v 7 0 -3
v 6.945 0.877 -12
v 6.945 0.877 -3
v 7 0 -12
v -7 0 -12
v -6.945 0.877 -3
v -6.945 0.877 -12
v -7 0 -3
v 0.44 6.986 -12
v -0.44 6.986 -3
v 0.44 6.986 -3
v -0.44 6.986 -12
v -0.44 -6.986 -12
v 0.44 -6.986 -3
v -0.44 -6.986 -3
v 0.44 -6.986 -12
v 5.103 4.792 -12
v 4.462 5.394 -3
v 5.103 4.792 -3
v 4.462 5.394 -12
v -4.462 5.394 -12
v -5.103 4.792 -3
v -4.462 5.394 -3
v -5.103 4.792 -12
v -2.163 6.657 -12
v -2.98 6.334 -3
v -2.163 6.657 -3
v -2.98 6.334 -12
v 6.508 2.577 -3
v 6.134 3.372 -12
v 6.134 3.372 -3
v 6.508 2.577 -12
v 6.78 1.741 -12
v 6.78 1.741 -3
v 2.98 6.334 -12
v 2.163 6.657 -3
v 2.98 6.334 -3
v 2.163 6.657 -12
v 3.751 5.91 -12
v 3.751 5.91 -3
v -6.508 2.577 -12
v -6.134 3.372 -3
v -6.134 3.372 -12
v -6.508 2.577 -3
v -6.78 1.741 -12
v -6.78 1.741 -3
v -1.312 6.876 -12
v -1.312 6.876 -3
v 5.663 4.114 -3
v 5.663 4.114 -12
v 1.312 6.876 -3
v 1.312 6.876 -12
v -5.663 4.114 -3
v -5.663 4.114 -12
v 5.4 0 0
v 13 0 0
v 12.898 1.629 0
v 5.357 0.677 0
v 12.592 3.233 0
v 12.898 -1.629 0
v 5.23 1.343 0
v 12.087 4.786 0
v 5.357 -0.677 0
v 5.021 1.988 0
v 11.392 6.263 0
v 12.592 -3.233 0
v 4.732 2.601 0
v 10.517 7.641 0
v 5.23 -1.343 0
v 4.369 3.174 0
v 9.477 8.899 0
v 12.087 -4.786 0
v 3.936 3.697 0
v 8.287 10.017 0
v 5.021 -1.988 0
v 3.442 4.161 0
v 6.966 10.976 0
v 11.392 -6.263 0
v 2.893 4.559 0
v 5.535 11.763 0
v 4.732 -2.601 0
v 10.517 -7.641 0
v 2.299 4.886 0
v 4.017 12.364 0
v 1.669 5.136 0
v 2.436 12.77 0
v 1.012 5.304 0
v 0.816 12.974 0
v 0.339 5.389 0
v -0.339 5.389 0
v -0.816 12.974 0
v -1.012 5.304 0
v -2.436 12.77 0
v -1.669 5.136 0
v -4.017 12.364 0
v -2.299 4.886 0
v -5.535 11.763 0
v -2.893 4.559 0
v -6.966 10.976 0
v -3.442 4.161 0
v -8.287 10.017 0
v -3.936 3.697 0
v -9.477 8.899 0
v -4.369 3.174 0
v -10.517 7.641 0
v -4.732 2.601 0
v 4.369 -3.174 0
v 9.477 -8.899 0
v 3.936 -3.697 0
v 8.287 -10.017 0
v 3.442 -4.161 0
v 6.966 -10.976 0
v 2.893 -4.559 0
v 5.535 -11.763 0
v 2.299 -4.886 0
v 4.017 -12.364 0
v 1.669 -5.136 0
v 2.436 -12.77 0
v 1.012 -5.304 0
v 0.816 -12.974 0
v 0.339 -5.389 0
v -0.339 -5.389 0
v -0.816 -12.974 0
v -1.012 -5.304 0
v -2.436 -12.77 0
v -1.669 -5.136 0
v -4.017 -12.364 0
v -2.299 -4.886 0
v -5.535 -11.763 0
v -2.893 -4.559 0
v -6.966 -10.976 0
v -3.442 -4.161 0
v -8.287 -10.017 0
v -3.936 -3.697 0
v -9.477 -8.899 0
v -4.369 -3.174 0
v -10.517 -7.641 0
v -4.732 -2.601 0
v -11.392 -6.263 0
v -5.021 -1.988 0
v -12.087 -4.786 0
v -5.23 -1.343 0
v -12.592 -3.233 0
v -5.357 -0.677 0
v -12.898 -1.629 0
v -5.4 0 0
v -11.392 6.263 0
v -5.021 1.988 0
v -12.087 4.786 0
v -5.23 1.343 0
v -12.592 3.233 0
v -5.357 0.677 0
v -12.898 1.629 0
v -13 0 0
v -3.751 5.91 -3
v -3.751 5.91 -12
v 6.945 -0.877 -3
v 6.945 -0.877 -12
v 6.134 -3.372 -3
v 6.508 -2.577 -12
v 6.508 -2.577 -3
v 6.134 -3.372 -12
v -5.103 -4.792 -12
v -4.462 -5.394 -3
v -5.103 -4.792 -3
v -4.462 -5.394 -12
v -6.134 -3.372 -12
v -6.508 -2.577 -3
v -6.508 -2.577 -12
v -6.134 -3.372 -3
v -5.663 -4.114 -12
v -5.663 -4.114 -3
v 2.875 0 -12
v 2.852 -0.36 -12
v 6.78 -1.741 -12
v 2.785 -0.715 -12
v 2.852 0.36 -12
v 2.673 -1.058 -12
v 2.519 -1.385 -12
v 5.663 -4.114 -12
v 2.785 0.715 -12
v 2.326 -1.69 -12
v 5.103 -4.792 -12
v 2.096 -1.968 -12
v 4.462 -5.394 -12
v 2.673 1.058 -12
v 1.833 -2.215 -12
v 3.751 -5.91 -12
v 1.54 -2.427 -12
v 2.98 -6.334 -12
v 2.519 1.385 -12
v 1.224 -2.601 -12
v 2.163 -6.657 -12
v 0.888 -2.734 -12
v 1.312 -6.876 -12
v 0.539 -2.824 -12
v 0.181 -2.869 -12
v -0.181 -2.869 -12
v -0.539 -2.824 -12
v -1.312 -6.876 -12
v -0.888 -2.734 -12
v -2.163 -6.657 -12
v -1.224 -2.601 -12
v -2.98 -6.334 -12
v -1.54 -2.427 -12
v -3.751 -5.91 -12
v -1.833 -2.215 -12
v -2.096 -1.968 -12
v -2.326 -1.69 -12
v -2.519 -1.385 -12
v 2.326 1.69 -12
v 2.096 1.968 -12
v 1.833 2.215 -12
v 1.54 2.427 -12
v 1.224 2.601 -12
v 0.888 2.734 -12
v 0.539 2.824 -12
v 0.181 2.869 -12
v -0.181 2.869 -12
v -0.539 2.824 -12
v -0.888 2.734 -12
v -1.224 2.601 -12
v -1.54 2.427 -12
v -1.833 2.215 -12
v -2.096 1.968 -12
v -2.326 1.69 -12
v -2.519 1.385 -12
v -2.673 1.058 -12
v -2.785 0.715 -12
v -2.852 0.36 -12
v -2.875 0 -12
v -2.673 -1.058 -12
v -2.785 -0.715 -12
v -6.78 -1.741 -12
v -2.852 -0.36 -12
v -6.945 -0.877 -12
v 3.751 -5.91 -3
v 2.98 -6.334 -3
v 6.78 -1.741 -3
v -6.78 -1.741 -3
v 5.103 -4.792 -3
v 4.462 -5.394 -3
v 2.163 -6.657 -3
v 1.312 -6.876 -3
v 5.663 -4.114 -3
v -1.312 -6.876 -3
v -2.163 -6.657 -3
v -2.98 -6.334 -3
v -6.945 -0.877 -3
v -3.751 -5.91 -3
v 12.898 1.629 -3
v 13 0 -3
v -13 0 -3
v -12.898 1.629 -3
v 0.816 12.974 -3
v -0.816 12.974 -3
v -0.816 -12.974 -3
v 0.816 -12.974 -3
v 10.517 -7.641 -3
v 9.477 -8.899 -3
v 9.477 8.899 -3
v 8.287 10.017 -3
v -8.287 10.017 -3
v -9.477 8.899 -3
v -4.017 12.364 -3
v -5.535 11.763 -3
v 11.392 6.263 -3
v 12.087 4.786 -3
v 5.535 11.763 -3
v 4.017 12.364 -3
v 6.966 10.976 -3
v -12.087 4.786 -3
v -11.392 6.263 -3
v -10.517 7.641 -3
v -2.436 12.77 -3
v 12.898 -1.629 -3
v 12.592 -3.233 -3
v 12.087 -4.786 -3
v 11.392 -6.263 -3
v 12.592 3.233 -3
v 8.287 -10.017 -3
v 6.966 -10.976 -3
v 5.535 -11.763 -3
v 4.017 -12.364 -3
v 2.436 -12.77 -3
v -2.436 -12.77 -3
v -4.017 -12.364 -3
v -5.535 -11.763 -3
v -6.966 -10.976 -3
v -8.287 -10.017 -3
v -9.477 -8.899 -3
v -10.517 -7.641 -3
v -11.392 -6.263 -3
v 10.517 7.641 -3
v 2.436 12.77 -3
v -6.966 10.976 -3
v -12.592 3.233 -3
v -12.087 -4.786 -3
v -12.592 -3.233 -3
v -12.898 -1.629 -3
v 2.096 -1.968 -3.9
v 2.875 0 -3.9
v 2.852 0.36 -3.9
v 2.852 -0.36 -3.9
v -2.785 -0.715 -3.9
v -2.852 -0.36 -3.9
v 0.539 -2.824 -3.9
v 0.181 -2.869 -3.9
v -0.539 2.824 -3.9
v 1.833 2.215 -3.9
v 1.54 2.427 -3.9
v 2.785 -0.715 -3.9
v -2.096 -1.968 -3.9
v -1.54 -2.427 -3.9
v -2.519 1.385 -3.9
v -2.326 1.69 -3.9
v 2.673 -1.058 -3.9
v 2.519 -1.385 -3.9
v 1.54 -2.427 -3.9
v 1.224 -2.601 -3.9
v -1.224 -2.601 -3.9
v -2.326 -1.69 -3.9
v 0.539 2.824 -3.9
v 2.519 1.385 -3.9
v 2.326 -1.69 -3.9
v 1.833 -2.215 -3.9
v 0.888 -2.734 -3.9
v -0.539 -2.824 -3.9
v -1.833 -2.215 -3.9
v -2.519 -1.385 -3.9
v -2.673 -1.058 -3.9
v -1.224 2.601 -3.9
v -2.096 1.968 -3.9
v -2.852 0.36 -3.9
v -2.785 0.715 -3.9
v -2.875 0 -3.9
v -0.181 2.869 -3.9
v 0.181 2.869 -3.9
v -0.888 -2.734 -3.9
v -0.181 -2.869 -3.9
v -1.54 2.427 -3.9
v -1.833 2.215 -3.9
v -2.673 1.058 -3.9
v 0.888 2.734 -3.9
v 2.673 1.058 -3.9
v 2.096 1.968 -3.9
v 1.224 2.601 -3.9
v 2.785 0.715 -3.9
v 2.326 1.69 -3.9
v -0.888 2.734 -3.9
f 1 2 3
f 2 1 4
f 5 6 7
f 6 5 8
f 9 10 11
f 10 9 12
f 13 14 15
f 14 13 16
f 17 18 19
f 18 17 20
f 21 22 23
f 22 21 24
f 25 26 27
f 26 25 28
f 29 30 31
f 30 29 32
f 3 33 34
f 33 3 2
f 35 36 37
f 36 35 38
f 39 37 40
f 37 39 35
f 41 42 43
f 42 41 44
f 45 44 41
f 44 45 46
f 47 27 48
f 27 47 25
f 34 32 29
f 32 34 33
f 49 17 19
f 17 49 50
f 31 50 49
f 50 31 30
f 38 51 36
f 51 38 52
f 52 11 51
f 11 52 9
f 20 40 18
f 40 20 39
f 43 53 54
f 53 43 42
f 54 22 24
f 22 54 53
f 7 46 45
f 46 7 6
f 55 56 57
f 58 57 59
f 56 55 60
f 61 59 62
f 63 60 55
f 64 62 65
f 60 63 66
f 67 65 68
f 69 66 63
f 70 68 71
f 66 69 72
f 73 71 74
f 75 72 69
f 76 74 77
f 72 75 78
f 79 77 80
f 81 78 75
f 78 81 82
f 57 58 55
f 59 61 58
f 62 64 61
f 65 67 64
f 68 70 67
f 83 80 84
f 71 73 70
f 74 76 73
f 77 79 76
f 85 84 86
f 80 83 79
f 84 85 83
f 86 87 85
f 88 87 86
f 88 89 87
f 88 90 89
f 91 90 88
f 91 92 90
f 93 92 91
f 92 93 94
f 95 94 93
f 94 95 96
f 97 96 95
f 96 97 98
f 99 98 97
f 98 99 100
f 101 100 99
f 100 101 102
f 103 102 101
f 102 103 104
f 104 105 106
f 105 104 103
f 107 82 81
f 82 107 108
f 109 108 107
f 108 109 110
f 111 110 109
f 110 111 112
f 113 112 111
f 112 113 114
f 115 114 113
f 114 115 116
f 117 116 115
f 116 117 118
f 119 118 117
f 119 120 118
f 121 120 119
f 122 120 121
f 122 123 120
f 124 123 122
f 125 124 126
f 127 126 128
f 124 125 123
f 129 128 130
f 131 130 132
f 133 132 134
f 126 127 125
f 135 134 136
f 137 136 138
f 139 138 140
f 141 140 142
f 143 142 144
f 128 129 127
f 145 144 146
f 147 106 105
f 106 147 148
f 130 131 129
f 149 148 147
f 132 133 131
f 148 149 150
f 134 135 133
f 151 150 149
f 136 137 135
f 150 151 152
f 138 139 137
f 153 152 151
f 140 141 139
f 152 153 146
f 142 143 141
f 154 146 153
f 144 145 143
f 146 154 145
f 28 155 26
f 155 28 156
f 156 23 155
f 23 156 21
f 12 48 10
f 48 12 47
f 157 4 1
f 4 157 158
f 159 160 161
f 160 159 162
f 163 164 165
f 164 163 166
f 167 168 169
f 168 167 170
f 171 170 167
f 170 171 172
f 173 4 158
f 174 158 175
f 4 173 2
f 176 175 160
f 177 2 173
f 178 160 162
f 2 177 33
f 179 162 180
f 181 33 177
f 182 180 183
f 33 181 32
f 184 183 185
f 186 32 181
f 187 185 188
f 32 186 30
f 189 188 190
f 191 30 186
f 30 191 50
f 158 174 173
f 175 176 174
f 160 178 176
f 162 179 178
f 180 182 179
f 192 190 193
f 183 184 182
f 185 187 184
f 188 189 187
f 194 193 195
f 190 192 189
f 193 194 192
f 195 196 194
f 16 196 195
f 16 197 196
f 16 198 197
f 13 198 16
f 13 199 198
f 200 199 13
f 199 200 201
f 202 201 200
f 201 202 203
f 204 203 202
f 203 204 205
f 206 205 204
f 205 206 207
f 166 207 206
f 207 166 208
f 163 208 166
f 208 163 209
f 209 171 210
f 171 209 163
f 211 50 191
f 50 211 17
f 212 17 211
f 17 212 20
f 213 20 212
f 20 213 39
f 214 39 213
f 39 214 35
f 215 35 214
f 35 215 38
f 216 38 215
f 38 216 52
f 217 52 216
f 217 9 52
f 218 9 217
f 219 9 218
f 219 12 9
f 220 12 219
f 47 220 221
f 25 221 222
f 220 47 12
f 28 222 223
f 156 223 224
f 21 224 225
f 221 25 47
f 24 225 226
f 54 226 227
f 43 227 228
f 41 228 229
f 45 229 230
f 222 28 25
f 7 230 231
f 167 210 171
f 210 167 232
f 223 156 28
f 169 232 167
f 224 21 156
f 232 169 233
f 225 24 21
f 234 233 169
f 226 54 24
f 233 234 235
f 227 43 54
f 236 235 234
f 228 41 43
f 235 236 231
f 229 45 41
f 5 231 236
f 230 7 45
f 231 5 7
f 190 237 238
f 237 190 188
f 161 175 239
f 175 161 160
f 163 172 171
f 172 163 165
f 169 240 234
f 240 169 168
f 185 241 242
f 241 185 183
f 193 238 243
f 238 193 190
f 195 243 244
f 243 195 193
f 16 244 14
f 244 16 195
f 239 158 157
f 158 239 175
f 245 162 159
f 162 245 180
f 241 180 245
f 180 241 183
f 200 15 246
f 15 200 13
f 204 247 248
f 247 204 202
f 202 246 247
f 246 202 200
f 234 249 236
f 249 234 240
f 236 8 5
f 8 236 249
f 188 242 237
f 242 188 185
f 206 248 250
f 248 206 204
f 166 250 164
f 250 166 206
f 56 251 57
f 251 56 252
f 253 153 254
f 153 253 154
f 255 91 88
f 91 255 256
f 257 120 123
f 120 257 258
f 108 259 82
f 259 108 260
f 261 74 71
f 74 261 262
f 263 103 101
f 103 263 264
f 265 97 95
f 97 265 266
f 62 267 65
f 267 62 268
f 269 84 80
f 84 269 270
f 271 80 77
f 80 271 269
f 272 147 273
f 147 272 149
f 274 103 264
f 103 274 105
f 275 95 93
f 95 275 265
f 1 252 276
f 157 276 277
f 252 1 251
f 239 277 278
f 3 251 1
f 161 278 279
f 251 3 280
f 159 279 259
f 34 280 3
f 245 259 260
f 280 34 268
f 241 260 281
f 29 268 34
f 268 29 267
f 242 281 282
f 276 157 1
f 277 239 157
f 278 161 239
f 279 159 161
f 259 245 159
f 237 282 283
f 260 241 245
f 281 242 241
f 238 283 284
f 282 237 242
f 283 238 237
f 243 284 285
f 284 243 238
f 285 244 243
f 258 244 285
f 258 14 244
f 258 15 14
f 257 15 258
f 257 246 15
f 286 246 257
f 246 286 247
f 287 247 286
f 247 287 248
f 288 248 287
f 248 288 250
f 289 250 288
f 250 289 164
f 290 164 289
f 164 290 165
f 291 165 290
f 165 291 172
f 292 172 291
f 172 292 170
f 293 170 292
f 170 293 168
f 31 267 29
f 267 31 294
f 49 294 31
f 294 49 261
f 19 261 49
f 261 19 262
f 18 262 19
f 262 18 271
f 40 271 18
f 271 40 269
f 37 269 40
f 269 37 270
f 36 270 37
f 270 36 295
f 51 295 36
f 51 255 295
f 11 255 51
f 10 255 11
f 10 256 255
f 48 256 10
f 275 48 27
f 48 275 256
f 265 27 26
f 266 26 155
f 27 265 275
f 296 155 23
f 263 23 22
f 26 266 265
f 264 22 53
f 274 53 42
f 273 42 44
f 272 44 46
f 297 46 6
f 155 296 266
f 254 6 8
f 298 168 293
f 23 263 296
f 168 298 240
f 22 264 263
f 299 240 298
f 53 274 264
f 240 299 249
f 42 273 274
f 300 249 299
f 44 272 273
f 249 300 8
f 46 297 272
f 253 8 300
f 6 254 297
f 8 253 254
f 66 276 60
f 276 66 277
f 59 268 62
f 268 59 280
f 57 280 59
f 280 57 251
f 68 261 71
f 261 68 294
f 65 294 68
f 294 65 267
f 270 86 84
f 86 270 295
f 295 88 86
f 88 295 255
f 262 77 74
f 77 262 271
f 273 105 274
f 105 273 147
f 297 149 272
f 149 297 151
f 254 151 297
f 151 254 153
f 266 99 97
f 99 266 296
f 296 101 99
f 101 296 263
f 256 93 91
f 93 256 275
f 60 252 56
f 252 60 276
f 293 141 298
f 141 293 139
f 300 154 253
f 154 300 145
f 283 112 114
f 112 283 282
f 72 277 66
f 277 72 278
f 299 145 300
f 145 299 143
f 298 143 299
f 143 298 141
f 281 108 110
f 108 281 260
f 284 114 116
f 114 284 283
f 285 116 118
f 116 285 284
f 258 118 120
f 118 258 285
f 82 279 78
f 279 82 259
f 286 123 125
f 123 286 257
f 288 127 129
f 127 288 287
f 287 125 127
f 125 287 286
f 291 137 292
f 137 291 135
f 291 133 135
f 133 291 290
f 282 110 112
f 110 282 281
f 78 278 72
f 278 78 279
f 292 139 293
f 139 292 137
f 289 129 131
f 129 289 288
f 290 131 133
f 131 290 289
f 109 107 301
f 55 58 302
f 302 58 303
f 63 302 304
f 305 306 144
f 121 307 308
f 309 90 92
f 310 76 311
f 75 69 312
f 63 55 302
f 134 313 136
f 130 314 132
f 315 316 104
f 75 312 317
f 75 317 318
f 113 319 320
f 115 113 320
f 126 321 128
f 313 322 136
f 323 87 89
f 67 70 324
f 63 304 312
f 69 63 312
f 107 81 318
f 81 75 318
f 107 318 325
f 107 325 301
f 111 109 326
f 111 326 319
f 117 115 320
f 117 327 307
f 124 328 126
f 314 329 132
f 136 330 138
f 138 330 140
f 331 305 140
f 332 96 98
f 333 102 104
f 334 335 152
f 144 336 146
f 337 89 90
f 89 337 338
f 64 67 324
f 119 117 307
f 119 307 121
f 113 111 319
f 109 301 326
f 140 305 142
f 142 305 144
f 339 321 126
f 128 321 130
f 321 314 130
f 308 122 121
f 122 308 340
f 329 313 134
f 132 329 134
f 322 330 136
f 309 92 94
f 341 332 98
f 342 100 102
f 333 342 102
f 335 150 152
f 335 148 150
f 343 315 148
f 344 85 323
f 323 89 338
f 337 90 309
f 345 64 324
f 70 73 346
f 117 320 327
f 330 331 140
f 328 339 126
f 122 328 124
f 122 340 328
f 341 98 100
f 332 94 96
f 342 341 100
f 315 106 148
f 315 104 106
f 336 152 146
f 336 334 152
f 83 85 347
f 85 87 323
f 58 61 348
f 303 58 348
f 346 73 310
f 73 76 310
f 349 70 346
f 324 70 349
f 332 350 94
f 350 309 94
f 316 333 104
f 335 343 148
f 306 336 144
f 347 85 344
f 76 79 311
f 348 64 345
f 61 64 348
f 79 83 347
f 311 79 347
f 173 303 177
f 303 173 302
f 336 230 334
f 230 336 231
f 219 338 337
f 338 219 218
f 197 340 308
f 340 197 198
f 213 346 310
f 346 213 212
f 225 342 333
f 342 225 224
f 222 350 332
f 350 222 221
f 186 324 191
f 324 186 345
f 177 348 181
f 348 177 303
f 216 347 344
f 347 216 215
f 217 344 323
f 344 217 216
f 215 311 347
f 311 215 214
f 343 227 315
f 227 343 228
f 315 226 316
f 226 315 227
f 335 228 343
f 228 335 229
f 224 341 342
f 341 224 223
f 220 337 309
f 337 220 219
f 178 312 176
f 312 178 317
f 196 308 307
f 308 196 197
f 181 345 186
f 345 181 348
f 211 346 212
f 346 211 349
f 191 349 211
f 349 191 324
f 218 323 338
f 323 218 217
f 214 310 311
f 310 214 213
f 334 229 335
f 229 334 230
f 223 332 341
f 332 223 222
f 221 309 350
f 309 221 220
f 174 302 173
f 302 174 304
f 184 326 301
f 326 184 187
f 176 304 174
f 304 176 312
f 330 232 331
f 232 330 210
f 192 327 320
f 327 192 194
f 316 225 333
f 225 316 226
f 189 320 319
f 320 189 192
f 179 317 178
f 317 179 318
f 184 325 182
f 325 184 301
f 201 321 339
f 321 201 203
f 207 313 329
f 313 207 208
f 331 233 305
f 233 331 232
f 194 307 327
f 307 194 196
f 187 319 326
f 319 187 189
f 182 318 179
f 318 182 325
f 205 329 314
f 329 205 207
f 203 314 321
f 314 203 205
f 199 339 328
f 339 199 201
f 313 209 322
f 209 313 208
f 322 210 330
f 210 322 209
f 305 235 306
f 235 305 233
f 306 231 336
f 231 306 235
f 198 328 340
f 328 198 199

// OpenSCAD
$fn = 50;


difference() {
	union() {
		translate(v = [0, 0, -12.0000000000]) {
			cylinder(h = 12, r = 7.0000000000);
		}
		translate(v = [0, 0, -3.0000000000]) {
			cylinder(h = 3, r = 13.0000000000);
		}
	}
	union() {
		translate(v = [0, 0, 0]) {
			rotate(a = [0, 0, 0]) {
				difference() {
					union() {
						#translate(v = [0, 0, -12.0000000000]) {
							cylinder(h = 12, r = 2.6000000000);
						}
						#translate(v = [0, 0, -3.9000000000]) {
							cylinder(h = 3.9000000000, r = 7.0000000000, r1 = 2.8750000000, r2 = 5.4000000000);
						}
						#translate(v = [0, 0, -12.0000000000]) {
							cylinder(h = 12, r = 2.8750000000);
						}
						#translate(v = [0, 0, -12.0000000000]) {
							cylinder(h = 12, r = 2.6000000000);
						}
					}
					union();
				}
			}
		}
	}
}
